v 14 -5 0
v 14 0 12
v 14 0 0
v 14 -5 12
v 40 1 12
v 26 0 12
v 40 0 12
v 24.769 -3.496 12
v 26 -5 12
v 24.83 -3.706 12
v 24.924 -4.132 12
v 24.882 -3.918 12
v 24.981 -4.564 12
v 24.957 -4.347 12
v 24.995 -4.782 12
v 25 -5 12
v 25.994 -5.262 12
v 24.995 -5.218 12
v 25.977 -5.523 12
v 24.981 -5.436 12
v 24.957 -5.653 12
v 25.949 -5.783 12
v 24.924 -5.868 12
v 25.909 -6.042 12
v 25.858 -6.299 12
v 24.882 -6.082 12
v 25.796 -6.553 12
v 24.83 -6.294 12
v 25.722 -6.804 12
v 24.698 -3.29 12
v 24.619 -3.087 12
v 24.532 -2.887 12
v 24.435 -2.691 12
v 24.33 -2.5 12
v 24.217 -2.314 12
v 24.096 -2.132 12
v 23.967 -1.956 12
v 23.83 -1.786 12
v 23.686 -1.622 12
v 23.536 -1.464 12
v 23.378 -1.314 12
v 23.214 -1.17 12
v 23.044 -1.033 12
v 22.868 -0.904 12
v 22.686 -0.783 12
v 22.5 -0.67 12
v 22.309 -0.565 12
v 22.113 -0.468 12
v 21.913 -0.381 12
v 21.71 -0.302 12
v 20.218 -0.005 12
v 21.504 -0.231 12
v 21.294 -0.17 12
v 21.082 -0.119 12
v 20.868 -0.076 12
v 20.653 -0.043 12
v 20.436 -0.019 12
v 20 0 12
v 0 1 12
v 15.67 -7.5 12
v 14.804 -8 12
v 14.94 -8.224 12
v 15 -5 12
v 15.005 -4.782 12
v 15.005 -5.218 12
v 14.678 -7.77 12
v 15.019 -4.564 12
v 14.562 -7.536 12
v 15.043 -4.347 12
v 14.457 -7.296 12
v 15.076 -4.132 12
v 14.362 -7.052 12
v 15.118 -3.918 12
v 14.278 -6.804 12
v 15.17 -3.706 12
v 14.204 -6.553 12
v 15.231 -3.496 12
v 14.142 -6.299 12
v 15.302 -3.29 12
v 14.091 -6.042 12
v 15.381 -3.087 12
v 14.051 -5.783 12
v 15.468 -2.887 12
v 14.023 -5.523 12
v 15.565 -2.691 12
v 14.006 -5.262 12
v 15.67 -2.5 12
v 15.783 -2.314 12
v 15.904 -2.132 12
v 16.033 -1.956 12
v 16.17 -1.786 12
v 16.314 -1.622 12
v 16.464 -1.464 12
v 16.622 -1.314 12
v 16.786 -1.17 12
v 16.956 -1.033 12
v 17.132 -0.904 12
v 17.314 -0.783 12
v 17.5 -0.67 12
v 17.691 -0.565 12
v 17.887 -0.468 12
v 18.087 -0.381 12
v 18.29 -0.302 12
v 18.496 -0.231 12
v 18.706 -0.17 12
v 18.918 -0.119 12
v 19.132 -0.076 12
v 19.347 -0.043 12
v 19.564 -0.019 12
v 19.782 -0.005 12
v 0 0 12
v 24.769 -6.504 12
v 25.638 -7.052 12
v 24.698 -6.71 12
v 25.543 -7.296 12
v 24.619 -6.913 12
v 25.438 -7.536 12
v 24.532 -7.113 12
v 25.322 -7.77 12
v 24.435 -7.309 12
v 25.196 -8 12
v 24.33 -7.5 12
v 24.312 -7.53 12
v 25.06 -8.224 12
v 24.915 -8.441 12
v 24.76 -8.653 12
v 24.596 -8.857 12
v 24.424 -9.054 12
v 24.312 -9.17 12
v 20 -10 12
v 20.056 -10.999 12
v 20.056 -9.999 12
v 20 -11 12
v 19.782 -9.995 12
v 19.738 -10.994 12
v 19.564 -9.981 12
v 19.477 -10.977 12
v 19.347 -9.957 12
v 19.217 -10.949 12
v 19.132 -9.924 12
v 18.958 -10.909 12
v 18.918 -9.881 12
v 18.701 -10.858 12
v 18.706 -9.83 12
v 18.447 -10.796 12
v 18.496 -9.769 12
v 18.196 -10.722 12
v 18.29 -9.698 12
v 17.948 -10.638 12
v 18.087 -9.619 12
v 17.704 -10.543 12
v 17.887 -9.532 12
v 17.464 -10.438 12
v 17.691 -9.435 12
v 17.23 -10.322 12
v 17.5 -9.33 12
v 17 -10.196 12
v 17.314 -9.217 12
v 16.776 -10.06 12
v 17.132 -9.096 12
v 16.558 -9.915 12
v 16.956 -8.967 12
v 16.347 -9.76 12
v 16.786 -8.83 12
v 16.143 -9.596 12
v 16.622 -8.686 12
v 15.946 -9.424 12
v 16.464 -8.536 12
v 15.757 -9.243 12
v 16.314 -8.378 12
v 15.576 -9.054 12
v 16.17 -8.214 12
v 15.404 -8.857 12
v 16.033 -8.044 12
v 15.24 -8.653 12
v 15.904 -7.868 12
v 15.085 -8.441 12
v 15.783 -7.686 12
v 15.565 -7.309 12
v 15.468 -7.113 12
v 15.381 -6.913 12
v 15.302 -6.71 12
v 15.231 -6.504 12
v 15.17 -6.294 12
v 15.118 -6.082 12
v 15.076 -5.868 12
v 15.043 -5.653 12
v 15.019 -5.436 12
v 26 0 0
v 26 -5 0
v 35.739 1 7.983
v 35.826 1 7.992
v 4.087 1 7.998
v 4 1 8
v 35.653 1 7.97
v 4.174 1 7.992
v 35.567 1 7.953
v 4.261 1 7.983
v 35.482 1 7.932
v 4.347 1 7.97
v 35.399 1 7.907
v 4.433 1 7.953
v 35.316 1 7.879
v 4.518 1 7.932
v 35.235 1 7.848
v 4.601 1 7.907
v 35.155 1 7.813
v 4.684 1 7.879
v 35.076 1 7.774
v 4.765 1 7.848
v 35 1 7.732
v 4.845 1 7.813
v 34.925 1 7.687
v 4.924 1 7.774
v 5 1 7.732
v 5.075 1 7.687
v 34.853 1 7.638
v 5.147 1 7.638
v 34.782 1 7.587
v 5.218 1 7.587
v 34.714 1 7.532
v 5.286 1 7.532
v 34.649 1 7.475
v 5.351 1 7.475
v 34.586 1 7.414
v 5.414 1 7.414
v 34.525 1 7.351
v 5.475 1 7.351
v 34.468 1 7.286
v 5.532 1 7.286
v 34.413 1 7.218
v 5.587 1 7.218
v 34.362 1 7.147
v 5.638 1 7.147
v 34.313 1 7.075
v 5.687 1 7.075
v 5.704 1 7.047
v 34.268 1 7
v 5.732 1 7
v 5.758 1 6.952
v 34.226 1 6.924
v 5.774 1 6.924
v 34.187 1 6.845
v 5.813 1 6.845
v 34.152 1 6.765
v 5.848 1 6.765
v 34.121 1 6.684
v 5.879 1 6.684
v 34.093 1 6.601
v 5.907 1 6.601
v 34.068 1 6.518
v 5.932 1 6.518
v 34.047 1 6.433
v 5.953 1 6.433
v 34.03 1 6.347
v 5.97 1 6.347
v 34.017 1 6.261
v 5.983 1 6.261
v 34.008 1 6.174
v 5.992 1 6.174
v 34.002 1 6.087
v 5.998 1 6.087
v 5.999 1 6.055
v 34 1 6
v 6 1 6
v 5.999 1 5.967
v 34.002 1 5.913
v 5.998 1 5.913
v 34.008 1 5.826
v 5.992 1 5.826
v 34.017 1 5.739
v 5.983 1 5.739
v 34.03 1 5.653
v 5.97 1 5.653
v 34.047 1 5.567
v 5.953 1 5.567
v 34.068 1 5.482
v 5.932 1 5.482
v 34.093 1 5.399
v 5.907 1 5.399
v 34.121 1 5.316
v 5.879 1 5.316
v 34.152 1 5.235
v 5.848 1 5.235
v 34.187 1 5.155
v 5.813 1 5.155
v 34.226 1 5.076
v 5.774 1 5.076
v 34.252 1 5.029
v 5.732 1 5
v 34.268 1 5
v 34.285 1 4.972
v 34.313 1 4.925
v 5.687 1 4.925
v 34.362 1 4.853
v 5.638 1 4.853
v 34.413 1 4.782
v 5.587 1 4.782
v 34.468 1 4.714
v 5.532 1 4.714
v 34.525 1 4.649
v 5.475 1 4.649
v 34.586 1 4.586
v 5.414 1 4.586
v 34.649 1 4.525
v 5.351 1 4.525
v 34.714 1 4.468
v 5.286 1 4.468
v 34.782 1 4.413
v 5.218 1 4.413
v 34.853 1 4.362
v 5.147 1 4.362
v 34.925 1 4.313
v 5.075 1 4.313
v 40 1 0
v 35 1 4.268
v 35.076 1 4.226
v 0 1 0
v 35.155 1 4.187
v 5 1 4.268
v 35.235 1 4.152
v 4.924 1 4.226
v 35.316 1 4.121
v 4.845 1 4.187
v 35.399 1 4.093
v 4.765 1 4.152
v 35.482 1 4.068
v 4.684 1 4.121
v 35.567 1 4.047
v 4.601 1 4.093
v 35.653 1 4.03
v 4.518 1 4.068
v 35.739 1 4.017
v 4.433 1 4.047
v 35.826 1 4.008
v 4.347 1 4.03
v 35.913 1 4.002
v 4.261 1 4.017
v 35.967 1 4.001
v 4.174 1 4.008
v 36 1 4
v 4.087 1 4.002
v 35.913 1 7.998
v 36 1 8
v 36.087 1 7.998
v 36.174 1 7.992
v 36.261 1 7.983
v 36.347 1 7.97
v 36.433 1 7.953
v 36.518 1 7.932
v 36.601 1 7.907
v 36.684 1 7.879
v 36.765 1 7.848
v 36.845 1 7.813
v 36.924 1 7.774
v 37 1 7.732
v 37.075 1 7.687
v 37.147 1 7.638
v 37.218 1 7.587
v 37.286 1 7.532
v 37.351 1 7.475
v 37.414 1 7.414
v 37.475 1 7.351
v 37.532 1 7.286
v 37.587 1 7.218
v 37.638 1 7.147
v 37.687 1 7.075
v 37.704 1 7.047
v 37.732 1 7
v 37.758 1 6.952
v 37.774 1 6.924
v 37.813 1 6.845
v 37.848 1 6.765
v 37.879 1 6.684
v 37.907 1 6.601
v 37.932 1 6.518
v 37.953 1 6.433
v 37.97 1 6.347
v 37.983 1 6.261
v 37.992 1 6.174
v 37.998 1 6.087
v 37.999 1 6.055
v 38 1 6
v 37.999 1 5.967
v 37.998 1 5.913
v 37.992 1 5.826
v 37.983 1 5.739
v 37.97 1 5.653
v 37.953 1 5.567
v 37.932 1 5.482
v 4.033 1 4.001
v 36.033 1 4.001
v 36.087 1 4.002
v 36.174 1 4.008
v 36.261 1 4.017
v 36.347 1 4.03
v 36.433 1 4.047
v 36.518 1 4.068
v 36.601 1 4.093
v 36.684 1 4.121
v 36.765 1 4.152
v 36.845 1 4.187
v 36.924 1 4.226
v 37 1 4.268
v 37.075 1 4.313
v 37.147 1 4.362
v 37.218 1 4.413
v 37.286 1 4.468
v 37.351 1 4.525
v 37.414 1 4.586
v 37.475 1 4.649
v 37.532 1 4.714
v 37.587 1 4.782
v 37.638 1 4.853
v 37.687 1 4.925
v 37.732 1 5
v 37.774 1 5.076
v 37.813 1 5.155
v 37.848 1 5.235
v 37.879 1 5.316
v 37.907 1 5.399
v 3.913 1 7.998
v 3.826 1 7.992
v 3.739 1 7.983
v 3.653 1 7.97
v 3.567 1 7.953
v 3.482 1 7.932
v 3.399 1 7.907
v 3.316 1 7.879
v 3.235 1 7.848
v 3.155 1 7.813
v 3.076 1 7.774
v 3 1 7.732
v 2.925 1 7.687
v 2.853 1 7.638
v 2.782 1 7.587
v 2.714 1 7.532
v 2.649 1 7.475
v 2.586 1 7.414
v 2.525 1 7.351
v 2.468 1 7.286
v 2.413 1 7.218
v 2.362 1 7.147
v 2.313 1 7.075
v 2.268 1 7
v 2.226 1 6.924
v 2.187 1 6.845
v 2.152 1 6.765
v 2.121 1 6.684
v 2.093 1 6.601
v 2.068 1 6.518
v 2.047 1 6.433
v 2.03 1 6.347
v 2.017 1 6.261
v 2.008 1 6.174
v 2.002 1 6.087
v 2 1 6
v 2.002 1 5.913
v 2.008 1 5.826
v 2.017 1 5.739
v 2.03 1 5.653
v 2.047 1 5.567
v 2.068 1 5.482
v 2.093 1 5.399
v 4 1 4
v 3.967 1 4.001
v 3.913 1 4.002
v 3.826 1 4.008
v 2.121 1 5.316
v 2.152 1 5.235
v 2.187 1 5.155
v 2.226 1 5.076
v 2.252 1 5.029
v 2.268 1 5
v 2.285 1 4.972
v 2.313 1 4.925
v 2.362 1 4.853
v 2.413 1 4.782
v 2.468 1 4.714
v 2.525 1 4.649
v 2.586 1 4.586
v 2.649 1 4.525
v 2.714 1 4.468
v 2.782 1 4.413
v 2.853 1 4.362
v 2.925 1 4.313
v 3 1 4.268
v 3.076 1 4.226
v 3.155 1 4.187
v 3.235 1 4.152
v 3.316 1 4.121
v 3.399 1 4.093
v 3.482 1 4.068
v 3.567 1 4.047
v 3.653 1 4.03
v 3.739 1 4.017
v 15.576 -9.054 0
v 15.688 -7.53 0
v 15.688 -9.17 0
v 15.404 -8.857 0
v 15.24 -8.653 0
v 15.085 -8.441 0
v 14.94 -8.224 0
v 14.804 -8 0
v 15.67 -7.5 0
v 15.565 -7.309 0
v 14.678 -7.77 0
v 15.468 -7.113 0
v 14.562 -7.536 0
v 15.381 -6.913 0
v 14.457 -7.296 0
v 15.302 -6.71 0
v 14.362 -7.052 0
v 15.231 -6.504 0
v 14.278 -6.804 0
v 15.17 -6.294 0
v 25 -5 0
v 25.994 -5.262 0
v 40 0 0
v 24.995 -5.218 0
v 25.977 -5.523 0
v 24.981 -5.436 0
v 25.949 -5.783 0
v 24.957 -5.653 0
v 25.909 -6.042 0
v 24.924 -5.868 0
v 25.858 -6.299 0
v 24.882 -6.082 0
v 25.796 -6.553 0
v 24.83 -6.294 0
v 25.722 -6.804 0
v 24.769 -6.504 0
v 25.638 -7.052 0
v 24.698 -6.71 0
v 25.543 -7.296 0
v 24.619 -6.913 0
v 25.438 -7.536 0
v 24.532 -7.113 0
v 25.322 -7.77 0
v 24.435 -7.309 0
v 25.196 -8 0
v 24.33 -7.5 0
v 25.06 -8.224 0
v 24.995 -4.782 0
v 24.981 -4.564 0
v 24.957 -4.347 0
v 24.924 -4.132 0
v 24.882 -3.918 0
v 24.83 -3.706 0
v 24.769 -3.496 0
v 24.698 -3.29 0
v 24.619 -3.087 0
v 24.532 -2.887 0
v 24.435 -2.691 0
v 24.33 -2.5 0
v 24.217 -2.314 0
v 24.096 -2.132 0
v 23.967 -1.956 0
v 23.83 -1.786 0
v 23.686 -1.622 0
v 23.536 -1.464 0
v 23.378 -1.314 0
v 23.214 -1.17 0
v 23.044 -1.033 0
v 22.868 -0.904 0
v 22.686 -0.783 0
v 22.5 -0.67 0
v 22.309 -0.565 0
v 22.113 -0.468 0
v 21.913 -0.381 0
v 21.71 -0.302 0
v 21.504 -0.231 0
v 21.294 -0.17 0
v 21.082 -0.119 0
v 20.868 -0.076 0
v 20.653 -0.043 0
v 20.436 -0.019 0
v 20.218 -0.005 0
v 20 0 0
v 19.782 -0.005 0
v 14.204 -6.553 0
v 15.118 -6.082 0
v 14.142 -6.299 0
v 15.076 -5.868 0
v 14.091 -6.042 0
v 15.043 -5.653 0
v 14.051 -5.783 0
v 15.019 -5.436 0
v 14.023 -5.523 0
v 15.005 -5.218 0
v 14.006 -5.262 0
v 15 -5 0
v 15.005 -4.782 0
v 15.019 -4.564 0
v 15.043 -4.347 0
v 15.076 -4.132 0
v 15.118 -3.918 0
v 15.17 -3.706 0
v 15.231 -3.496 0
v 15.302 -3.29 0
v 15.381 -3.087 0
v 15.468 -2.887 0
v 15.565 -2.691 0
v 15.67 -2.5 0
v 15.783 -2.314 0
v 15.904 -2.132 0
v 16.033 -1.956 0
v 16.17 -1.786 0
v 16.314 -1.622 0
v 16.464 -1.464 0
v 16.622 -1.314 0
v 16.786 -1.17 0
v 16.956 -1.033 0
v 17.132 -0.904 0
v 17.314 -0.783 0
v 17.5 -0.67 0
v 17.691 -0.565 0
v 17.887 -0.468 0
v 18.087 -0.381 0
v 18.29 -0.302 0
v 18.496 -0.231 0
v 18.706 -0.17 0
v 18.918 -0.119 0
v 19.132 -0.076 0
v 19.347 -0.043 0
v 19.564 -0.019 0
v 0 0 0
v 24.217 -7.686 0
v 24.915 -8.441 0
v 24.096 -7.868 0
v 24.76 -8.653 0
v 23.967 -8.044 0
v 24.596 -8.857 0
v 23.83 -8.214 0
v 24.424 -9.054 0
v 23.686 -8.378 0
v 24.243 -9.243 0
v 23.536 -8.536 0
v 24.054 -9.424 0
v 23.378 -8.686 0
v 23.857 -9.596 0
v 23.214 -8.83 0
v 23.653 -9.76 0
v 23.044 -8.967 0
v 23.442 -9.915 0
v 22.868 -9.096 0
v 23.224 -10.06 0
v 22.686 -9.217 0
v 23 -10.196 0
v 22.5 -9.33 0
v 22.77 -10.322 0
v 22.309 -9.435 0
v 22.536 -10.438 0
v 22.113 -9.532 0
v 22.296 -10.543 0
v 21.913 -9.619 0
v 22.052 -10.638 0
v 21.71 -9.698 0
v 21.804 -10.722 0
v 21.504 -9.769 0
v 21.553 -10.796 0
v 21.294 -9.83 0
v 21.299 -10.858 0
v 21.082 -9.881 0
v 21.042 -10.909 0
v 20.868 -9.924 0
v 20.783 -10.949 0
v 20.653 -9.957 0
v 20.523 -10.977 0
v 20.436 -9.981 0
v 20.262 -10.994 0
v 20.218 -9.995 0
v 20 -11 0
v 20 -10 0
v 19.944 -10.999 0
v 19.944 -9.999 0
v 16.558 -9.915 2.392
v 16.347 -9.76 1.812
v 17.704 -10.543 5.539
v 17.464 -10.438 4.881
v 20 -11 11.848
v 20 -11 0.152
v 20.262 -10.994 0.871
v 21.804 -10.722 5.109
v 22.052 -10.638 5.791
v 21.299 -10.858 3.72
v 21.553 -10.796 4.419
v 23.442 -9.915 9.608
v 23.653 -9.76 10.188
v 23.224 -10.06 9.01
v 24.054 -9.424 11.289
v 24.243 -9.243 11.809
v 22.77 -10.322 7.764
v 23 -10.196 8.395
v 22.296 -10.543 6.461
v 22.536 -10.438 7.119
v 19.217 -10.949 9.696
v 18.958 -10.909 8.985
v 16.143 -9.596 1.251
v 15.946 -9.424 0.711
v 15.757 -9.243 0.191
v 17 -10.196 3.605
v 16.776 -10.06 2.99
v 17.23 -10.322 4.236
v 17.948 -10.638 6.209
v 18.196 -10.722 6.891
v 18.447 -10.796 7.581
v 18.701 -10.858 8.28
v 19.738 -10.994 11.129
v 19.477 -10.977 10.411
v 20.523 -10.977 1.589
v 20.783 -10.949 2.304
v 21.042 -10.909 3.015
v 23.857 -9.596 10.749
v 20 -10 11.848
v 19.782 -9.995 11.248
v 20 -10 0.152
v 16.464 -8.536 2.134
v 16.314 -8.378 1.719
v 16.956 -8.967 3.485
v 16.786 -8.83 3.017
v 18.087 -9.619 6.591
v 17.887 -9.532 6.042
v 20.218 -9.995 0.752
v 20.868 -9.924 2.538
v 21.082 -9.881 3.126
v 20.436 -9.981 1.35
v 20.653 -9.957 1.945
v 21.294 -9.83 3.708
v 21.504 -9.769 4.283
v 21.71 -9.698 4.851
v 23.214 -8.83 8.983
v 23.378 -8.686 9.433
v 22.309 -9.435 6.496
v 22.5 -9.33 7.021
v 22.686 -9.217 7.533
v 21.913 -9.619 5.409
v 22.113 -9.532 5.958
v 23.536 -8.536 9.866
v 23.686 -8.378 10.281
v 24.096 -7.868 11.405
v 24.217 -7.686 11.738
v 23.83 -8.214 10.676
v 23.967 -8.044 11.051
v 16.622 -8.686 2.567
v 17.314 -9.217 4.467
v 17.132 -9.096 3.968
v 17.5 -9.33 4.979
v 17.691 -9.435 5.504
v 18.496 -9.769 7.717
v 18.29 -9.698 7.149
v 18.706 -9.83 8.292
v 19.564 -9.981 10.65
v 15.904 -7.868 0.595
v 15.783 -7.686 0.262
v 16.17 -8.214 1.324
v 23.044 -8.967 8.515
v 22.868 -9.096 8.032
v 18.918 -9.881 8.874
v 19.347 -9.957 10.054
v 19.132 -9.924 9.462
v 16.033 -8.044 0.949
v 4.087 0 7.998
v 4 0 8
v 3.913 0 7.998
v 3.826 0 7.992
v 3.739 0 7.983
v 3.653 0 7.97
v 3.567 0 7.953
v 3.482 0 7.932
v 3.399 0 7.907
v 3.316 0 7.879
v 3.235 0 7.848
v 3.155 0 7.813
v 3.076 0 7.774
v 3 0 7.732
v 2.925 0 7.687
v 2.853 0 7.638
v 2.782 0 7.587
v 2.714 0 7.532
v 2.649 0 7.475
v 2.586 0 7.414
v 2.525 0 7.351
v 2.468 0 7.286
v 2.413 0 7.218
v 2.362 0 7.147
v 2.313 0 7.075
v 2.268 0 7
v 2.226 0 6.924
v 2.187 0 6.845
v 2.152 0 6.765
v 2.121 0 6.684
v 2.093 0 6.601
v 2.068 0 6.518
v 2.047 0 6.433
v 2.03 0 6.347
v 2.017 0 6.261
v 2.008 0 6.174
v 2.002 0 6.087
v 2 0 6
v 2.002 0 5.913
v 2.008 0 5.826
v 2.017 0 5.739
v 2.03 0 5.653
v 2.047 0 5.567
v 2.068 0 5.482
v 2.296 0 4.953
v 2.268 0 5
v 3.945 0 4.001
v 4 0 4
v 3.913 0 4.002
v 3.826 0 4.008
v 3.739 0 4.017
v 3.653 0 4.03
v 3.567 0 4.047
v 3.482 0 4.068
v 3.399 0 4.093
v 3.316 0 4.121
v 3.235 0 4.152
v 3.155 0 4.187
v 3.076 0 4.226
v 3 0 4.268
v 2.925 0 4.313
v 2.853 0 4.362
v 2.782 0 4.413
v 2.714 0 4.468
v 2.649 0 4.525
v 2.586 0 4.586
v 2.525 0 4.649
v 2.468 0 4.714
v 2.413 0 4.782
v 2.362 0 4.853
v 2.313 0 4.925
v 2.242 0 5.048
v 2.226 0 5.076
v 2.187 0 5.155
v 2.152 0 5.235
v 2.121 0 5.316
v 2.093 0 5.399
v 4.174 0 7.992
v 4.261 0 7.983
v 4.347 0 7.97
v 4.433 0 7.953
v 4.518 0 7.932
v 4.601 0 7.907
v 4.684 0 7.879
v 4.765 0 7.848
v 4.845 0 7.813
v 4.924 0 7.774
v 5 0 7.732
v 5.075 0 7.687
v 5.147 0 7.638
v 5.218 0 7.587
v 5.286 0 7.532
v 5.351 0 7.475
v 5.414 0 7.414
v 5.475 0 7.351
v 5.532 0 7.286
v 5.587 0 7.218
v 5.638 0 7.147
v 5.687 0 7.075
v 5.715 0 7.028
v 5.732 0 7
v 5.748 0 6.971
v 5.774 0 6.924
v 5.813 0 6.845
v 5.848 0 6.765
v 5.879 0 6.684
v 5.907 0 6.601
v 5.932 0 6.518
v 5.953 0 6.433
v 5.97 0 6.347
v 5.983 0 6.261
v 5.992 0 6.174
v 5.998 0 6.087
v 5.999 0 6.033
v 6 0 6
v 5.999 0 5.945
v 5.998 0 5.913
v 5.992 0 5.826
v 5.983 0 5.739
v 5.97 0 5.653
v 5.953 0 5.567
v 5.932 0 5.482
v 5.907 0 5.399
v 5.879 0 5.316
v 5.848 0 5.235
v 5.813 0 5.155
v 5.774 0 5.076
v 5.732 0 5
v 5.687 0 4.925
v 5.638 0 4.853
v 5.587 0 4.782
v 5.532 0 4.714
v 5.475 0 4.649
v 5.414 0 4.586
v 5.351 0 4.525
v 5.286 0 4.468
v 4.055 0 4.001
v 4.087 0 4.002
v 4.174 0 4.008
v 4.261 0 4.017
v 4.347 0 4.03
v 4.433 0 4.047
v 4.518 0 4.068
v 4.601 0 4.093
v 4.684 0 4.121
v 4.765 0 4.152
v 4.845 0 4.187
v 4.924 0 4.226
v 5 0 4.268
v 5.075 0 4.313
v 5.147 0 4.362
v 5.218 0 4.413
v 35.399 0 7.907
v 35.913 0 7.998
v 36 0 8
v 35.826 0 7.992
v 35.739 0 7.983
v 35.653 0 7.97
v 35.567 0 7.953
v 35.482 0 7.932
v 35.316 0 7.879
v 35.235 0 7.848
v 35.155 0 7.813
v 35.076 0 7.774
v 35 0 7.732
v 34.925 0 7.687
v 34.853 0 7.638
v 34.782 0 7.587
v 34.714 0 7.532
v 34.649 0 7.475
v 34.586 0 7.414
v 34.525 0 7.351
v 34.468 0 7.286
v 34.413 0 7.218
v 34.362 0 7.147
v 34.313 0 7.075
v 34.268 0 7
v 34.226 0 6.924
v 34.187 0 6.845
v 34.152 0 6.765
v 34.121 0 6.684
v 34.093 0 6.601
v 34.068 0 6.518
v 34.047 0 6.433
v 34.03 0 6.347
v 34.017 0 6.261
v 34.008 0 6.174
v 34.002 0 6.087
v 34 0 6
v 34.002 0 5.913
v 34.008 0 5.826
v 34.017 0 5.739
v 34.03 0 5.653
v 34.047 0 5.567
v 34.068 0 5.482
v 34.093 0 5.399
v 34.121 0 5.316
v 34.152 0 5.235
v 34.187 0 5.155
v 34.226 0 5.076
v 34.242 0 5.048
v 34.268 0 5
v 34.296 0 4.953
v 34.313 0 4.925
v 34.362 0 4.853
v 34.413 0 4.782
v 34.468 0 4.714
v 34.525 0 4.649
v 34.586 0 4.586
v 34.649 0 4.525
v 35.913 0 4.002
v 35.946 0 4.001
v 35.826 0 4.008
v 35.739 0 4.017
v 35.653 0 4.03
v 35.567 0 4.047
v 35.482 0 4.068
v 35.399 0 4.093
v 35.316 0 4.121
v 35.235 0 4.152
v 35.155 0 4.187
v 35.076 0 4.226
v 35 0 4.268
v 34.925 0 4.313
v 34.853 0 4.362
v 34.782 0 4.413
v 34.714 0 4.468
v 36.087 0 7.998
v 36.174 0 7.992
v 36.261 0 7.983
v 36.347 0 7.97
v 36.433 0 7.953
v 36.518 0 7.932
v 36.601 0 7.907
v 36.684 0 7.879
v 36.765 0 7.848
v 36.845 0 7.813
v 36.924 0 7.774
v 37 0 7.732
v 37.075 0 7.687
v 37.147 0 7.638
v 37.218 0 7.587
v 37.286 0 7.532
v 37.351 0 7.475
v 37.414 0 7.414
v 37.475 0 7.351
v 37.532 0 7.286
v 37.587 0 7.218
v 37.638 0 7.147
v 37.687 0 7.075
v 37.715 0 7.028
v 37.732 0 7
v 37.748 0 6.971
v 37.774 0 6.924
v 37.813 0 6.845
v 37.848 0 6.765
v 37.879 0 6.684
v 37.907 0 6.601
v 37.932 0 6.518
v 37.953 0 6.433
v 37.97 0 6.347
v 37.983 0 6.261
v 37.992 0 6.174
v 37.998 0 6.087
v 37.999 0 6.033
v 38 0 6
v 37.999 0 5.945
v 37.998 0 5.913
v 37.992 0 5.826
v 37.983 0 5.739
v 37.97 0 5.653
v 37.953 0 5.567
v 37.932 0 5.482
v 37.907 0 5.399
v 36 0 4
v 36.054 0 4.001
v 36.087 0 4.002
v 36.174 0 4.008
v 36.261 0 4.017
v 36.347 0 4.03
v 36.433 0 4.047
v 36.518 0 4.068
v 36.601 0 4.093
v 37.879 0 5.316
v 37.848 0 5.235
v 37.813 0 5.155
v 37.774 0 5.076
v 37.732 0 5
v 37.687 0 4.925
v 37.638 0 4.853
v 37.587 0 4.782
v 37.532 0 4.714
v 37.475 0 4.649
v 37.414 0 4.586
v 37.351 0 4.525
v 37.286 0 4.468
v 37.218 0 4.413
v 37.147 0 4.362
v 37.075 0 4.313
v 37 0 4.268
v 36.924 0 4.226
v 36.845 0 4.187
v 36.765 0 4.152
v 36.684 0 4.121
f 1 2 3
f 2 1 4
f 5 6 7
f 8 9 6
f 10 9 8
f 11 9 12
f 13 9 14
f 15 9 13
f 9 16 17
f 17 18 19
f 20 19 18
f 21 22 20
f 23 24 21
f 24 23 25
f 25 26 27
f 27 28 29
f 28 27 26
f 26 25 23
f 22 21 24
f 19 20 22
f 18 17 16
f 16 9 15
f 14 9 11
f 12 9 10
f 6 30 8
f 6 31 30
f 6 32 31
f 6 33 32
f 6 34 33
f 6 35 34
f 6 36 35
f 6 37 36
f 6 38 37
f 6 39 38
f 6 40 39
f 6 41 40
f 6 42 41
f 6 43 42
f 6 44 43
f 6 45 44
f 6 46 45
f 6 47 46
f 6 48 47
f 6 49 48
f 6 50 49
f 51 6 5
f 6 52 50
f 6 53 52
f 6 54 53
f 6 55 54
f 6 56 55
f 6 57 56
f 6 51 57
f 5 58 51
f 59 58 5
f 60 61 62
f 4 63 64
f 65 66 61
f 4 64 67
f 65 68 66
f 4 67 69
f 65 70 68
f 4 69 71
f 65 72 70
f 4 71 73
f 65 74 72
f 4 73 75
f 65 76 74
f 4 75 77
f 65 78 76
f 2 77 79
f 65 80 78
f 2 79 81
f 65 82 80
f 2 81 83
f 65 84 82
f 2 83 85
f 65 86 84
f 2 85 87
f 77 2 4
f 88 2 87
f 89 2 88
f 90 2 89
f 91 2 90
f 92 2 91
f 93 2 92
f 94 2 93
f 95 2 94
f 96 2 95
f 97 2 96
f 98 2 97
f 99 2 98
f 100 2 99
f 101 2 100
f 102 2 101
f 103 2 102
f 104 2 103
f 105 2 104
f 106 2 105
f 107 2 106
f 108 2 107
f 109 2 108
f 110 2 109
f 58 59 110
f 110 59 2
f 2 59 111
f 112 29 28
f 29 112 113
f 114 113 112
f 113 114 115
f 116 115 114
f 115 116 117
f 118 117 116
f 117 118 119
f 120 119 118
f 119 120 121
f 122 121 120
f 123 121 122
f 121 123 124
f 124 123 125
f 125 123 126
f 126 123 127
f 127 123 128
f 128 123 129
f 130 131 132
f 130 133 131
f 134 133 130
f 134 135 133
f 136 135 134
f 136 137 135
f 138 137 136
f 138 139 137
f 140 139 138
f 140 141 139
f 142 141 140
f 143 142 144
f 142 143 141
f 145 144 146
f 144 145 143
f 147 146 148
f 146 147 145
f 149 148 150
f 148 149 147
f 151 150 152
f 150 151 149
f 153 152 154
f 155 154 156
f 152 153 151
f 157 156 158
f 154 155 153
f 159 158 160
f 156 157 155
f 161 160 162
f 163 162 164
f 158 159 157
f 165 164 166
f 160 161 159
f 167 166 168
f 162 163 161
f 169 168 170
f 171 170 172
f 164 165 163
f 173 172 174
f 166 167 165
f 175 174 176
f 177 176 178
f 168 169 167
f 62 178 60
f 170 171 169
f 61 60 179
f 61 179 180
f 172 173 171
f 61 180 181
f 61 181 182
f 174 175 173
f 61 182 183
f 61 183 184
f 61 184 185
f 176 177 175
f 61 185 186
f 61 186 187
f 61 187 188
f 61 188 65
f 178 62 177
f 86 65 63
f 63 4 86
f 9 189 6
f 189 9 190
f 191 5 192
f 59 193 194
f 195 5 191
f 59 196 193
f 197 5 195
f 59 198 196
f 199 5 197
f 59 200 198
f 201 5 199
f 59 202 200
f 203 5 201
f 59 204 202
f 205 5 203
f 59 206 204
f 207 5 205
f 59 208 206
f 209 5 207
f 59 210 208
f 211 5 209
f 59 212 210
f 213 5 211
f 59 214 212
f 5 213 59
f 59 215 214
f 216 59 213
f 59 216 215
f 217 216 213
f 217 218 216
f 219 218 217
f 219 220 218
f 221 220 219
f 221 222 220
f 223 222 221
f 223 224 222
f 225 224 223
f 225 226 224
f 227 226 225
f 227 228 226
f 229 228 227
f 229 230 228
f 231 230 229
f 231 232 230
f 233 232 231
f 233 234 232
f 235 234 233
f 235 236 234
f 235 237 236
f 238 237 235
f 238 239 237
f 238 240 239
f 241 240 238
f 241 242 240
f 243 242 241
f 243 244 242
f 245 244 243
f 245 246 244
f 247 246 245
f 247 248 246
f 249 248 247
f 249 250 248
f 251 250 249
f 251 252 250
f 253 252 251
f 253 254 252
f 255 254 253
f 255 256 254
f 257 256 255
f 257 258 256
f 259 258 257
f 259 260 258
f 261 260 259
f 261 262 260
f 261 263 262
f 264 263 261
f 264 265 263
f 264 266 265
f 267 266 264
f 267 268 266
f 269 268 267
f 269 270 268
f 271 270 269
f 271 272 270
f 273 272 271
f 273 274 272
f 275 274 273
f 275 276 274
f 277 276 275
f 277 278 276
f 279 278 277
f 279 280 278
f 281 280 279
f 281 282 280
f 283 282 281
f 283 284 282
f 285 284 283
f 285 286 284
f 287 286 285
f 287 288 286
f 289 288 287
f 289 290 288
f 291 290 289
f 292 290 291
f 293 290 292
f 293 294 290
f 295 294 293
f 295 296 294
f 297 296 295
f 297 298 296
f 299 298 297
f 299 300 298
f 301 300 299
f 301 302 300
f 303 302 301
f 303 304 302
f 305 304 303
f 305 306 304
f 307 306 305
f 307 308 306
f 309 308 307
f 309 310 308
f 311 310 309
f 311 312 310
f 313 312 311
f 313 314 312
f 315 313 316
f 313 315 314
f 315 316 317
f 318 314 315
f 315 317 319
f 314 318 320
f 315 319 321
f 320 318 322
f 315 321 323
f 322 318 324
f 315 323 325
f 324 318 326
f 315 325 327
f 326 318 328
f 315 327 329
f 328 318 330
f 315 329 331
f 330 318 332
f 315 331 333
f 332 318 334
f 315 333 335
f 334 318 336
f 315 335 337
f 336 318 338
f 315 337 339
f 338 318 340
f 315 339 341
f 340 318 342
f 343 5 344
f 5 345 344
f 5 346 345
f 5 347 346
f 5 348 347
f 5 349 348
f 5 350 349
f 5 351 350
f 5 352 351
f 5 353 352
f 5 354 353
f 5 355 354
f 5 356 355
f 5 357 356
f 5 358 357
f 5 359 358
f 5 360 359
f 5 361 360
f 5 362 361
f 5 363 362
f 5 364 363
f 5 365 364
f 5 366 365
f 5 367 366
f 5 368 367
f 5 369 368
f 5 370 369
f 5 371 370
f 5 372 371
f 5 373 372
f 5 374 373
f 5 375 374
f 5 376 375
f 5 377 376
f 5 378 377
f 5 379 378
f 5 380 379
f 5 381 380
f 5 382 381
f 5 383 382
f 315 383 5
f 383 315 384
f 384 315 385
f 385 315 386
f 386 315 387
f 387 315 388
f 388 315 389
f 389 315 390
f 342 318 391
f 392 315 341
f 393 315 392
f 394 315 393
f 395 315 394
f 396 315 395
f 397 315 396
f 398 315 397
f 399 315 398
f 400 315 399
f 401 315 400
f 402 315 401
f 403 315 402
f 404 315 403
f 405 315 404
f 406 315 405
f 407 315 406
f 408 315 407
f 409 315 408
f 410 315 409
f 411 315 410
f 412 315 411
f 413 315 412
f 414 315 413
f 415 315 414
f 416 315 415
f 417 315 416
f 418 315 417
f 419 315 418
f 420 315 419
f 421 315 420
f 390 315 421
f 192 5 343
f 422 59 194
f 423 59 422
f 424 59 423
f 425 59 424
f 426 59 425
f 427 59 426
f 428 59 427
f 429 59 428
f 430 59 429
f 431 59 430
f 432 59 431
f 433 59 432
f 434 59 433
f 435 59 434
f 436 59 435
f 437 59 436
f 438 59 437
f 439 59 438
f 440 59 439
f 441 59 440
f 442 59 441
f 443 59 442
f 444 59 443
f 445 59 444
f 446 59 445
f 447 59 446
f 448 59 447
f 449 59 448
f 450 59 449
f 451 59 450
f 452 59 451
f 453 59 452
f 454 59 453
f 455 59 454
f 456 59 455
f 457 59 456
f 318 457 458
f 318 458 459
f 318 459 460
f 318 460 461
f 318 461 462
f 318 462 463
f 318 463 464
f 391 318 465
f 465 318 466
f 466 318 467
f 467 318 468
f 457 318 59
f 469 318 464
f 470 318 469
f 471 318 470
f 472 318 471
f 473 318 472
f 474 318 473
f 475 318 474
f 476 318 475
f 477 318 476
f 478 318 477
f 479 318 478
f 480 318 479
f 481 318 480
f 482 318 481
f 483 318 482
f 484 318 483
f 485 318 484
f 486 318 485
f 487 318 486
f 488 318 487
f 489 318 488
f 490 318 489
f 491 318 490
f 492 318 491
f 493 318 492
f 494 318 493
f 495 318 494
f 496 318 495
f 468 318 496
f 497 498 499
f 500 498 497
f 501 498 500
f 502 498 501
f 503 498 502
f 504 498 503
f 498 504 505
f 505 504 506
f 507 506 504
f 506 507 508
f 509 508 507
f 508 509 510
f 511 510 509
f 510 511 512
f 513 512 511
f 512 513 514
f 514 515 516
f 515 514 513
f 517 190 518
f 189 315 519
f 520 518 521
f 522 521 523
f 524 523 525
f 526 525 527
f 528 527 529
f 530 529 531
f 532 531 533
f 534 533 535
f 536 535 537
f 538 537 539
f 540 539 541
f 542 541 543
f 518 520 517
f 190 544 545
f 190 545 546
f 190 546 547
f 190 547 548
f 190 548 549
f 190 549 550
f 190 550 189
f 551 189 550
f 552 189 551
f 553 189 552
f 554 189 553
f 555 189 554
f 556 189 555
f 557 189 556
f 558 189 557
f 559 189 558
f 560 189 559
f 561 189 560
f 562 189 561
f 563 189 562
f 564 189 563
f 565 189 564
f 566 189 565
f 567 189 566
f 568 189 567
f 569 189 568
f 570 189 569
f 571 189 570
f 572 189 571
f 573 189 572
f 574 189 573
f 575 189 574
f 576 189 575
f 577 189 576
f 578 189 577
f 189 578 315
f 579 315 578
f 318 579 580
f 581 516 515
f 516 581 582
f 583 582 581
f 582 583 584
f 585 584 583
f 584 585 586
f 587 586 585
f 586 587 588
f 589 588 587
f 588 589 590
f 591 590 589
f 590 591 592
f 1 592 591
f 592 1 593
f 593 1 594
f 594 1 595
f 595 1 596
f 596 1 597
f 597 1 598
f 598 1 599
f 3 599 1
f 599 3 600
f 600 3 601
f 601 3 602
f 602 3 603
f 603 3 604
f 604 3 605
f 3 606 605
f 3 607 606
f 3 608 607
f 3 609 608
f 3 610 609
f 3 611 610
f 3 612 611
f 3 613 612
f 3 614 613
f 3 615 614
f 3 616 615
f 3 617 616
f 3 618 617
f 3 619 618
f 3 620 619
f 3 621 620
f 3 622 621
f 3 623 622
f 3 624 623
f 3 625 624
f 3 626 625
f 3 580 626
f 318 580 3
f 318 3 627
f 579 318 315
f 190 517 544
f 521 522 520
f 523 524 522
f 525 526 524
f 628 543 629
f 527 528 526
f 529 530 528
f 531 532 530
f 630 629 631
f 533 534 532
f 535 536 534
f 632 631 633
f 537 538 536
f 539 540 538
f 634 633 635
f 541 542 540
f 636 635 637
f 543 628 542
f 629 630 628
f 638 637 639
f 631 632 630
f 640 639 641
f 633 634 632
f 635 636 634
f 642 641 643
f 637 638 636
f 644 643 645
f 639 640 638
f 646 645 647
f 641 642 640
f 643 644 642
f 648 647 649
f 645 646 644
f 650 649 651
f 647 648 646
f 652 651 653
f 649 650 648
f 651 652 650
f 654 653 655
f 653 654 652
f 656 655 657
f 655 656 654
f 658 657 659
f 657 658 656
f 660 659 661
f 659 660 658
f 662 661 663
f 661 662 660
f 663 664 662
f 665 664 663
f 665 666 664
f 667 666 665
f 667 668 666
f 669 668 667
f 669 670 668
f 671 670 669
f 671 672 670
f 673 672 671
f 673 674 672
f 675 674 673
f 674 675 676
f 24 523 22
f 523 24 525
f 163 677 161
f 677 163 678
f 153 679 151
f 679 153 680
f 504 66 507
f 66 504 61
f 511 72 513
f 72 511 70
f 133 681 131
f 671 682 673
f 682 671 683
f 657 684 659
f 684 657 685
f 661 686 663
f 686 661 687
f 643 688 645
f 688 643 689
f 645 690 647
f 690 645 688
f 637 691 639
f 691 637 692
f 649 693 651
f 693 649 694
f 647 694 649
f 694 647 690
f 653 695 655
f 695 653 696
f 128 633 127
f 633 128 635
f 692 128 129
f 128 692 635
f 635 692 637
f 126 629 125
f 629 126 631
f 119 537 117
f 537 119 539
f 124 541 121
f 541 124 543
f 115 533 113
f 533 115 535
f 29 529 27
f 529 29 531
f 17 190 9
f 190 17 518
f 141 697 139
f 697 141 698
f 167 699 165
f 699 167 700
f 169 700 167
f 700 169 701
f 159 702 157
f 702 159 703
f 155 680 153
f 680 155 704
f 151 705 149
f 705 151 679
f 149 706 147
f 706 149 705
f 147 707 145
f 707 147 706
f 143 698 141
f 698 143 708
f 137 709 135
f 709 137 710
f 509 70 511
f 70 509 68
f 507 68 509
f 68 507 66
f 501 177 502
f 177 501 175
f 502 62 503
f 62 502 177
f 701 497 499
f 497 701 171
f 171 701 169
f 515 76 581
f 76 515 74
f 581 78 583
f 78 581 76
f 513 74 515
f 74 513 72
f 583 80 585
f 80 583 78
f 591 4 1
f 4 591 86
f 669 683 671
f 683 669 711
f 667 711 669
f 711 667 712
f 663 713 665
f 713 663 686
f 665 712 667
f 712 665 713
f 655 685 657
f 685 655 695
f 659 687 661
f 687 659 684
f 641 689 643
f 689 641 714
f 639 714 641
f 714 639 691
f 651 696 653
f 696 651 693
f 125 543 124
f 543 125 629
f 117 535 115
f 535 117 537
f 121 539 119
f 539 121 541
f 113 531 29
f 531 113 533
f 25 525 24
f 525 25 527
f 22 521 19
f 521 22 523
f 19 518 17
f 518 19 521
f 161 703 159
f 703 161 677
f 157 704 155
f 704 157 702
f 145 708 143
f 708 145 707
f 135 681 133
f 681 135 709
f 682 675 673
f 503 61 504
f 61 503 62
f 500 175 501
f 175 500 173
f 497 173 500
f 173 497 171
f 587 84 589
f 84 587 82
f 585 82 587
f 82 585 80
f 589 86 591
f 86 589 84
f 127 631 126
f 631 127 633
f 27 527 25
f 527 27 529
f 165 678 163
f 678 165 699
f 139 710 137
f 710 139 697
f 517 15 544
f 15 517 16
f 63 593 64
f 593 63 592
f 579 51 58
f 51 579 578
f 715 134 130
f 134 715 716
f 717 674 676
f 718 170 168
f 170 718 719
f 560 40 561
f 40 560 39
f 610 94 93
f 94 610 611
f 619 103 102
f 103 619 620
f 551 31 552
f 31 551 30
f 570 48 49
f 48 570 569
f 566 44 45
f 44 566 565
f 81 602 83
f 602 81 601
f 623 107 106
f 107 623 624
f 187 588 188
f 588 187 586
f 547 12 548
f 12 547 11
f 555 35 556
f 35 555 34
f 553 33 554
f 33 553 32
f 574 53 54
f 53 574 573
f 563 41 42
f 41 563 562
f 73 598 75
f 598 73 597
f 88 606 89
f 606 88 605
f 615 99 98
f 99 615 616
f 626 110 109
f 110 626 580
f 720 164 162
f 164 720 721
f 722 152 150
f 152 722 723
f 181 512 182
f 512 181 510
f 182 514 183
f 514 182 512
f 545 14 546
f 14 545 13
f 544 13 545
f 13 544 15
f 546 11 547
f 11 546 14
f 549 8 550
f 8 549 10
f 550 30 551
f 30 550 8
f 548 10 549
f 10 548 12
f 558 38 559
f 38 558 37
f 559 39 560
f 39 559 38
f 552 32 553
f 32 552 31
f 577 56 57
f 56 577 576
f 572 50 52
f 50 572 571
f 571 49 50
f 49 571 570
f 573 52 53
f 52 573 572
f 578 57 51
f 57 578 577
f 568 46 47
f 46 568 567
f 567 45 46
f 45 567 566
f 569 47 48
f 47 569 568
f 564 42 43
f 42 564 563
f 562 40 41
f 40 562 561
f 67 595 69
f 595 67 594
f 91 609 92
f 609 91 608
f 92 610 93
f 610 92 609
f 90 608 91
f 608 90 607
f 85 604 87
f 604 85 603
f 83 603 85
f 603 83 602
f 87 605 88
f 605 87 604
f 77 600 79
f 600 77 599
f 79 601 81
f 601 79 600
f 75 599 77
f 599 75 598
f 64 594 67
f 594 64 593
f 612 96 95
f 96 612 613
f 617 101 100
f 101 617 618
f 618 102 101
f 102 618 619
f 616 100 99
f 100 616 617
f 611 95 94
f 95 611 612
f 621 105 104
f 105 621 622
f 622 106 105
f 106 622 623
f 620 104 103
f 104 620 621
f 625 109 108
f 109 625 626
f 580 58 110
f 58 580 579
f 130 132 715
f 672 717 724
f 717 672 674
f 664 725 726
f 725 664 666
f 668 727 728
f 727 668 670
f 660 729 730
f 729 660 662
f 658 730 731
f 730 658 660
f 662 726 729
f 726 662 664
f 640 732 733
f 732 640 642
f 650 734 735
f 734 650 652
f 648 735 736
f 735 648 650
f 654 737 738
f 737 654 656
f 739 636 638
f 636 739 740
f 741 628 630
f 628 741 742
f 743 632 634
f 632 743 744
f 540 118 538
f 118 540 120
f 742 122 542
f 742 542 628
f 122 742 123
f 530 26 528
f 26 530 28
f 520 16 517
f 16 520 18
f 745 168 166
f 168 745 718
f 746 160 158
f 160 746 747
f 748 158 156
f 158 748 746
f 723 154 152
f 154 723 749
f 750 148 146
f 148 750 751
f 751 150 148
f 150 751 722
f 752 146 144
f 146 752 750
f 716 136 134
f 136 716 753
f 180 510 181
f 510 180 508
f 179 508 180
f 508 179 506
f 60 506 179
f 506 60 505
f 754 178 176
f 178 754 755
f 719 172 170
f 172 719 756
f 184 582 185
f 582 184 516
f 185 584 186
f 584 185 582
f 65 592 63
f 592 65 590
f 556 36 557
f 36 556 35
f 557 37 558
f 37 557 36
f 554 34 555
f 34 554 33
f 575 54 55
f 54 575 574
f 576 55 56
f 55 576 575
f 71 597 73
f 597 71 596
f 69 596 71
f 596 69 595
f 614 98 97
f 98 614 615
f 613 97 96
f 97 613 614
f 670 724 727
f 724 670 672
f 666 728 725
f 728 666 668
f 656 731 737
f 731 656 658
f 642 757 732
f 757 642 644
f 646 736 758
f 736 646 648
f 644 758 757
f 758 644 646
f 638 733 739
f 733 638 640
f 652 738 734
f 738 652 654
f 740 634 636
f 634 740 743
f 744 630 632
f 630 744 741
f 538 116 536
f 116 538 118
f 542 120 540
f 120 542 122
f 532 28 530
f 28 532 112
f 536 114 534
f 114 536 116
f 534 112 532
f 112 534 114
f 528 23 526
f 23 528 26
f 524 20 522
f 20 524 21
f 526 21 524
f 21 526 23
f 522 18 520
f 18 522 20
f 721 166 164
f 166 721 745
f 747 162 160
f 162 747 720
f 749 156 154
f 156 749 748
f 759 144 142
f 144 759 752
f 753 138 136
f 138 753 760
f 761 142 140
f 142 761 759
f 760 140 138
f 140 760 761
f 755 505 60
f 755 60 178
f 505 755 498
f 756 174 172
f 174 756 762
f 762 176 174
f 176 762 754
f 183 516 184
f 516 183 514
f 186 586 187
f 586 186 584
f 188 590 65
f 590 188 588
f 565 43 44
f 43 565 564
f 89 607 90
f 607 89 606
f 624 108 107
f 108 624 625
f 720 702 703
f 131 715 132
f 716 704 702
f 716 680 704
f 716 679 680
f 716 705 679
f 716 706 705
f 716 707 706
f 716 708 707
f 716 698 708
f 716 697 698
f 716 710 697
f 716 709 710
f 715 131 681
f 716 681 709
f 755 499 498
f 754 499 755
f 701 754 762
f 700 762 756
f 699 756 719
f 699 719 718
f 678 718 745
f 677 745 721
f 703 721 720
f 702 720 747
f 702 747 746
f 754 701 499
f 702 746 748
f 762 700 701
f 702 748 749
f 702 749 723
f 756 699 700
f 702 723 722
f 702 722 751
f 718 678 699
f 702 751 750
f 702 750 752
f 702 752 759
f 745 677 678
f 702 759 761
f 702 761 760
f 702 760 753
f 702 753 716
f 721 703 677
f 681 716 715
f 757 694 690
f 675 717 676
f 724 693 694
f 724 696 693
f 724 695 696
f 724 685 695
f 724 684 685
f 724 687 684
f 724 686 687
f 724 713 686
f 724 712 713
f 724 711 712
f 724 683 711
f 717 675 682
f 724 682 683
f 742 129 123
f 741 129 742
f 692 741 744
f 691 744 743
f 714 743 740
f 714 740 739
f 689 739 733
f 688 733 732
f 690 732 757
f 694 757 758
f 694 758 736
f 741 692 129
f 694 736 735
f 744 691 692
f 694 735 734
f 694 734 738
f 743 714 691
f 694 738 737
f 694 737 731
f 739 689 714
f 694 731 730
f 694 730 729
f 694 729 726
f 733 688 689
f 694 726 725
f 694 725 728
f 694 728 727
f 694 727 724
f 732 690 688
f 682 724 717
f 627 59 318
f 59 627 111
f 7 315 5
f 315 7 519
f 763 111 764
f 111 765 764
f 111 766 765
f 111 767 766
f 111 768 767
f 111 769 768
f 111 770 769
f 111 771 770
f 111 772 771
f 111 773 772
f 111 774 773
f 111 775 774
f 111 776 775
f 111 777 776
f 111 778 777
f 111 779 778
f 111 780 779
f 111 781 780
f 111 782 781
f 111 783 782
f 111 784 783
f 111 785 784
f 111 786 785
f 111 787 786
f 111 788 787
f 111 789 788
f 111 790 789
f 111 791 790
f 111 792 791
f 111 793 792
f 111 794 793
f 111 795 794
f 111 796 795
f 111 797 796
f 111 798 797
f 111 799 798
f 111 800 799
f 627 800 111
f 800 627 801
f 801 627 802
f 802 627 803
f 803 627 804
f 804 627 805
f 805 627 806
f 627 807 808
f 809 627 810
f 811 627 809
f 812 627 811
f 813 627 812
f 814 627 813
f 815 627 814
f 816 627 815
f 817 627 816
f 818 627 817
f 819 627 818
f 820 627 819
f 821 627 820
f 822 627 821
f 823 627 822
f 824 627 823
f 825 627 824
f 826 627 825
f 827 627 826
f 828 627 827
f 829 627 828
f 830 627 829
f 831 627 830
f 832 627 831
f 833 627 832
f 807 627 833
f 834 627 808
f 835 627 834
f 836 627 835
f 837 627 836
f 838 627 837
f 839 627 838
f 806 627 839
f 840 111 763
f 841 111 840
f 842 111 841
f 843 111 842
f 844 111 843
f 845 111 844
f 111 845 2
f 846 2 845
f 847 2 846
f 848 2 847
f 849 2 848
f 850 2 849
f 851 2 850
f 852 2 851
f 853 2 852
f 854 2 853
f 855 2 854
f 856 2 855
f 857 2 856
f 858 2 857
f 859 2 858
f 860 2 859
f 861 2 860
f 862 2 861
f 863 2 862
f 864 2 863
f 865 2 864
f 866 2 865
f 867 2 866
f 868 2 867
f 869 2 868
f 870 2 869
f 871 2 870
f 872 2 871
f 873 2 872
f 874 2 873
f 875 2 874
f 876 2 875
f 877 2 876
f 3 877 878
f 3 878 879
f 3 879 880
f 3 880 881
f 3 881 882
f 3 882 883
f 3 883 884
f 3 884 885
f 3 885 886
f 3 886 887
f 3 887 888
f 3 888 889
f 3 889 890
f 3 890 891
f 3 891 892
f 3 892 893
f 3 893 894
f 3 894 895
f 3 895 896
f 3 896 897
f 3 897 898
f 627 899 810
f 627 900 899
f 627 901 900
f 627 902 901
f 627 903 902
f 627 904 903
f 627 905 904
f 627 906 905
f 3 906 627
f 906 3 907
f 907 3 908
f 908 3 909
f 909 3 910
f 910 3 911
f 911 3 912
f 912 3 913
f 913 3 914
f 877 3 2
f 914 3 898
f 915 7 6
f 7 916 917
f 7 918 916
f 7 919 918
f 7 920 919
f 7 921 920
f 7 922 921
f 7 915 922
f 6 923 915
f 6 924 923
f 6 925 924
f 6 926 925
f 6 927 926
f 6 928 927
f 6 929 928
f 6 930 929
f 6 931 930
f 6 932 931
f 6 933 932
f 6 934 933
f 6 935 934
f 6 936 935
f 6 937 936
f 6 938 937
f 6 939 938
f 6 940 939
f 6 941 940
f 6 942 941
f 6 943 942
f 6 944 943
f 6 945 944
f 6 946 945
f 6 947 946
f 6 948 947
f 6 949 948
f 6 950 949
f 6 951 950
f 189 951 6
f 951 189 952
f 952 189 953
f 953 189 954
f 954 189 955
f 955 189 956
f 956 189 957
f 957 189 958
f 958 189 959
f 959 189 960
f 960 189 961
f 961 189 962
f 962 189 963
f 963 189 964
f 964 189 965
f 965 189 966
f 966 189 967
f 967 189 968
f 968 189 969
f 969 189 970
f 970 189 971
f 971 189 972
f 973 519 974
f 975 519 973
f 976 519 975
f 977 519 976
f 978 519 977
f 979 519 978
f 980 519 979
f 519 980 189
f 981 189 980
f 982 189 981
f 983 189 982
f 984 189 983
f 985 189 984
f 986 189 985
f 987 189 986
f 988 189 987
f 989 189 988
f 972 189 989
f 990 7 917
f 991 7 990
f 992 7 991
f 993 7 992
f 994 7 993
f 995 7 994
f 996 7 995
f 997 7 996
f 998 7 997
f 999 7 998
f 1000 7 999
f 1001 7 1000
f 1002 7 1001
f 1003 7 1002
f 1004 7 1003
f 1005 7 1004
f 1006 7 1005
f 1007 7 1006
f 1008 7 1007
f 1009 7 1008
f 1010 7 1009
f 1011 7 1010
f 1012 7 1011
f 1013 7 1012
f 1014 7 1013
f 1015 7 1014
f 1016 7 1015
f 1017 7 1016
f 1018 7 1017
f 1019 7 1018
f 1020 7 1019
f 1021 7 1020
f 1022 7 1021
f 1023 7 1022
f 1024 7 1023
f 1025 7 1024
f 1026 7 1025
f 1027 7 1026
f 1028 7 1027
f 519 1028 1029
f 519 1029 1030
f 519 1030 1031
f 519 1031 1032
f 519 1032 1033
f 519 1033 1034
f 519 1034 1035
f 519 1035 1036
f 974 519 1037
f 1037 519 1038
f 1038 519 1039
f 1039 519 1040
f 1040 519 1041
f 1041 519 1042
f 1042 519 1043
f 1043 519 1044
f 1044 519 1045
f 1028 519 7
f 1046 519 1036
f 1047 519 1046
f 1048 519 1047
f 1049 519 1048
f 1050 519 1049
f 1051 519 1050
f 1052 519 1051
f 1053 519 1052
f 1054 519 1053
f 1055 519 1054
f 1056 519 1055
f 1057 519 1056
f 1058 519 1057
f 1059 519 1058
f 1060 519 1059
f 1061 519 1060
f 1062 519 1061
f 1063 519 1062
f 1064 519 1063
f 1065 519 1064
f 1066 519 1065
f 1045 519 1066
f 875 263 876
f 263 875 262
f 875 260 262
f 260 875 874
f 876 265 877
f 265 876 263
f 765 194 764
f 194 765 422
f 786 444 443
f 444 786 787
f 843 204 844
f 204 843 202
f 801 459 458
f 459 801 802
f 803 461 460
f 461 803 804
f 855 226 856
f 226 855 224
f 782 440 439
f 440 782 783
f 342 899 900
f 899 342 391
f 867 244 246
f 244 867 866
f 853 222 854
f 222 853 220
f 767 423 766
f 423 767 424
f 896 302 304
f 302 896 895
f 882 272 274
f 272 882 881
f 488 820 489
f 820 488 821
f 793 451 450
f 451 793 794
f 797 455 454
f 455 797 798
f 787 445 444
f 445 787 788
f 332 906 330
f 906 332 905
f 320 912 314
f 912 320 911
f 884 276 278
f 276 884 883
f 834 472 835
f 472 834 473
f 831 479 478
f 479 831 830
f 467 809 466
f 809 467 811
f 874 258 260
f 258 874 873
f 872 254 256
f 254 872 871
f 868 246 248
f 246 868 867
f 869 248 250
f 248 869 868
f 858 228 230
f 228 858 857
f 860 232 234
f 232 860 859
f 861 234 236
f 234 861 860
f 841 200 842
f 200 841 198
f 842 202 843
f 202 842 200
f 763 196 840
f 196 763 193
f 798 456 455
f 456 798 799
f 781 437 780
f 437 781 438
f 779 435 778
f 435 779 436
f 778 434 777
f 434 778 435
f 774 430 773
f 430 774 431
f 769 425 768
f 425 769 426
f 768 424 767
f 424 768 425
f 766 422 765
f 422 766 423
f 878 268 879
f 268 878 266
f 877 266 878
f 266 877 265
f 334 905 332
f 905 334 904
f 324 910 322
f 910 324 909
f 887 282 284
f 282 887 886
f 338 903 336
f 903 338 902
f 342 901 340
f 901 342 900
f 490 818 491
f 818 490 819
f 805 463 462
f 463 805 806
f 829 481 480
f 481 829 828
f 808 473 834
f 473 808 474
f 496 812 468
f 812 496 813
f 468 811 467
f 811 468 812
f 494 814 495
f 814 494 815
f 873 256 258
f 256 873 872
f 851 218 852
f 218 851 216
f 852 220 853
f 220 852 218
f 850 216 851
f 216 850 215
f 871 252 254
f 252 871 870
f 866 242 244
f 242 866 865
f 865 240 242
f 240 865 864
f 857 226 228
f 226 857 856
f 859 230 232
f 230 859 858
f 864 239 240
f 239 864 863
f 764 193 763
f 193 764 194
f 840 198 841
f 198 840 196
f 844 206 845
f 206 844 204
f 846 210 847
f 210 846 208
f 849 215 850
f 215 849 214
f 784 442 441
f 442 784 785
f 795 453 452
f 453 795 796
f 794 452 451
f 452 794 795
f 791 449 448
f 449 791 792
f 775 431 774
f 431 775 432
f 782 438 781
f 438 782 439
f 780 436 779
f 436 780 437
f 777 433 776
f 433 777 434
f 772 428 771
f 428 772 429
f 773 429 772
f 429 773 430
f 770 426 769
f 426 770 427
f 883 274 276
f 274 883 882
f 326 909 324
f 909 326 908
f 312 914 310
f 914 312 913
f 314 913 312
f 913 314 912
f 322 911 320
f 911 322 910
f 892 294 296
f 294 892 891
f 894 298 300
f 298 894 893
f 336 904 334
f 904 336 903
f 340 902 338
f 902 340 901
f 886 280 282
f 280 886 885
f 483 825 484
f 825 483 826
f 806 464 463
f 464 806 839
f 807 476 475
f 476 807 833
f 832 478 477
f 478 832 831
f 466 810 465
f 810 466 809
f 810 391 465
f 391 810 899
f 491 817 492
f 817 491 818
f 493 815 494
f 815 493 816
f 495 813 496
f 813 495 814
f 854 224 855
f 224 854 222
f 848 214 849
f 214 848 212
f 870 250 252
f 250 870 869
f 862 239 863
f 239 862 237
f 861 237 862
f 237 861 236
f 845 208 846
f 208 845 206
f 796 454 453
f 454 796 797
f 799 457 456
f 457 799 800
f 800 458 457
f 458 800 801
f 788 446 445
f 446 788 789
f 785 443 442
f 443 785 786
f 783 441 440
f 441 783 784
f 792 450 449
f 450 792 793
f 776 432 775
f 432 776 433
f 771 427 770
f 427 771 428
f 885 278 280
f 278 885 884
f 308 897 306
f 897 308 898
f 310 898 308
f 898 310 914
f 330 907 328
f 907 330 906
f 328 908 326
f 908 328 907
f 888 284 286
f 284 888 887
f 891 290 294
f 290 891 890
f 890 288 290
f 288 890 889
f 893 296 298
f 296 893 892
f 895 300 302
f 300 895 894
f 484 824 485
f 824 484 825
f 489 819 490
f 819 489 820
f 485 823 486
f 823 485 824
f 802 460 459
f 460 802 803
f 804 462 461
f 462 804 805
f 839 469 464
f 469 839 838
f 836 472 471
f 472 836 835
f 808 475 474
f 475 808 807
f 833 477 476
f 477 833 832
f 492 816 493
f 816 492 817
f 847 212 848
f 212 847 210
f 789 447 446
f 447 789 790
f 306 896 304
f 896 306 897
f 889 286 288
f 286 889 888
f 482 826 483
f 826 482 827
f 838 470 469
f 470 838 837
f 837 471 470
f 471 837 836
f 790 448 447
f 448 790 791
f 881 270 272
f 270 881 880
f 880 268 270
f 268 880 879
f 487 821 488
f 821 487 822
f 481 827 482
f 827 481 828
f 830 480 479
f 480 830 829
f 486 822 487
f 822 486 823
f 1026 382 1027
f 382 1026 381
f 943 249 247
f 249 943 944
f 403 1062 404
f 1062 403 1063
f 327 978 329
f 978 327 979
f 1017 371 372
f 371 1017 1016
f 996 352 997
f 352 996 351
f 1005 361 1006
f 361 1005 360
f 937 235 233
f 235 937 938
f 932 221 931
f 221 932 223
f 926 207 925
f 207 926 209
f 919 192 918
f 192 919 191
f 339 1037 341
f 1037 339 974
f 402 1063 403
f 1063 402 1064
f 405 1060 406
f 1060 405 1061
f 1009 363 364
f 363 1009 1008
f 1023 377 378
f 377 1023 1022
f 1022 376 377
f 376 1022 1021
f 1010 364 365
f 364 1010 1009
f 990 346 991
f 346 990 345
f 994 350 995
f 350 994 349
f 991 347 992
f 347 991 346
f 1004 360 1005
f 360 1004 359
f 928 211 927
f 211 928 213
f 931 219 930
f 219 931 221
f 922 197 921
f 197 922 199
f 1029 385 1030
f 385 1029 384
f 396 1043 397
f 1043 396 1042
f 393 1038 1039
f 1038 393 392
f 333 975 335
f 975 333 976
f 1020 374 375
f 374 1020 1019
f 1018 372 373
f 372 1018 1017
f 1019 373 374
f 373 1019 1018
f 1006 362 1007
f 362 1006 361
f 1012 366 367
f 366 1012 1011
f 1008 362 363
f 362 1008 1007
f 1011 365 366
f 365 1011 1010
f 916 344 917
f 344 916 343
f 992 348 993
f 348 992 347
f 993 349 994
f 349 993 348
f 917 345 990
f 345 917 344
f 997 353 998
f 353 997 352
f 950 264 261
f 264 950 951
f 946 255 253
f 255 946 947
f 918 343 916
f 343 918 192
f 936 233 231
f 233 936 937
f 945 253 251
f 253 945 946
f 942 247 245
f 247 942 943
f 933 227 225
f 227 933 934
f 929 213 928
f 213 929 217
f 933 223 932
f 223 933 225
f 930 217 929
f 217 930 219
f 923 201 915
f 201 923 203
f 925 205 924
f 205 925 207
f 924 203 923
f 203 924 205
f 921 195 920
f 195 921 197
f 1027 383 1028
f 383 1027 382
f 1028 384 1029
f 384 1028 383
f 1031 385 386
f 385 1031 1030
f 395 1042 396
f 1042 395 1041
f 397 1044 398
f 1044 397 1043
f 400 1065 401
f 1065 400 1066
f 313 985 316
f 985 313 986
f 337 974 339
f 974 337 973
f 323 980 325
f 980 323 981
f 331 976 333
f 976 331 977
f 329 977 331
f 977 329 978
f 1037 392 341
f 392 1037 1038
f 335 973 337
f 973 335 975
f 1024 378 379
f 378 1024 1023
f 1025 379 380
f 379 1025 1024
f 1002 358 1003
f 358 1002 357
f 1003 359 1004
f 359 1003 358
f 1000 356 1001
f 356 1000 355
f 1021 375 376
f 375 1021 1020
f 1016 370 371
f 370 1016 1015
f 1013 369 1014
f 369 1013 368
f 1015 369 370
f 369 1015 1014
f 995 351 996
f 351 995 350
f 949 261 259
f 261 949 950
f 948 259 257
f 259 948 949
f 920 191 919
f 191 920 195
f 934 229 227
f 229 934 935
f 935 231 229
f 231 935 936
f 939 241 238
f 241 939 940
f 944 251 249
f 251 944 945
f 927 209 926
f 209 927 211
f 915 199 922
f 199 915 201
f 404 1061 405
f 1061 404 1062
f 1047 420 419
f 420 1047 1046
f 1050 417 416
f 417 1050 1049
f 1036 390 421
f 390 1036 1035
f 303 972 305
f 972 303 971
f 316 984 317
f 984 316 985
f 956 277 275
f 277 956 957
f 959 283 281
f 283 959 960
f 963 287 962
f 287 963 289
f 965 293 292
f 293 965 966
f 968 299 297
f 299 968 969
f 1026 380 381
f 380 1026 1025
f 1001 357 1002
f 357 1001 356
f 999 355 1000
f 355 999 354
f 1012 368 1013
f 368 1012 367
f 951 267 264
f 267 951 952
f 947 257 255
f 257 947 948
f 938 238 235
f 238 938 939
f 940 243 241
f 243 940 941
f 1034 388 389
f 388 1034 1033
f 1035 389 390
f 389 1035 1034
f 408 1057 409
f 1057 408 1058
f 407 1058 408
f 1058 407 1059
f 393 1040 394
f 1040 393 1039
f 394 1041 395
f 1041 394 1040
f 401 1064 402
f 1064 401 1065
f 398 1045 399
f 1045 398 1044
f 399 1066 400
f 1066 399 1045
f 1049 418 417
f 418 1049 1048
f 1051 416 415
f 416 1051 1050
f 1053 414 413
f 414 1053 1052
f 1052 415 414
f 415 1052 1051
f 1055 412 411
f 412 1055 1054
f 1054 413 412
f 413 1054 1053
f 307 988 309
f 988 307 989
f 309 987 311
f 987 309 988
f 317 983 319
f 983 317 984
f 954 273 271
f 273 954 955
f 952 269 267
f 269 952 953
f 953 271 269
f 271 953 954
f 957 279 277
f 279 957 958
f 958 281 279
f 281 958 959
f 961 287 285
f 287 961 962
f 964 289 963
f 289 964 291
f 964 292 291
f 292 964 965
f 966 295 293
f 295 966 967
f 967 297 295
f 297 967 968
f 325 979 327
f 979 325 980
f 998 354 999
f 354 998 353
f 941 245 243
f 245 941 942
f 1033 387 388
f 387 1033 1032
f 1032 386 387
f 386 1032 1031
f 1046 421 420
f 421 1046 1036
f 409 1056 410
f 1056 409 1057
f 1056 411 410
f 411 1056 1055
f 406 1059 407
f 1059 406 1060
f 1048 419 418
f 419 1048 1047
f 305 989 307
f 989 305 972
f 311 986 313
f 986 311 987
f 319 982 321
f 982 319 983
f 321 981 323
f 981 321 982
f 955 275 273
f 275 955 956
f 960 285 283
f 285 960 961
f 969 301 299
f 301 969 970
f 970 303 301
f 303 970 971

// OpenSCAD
width=12;
holeOffset = 8;
holeRadius = 2;

holeFacets = 144;

height=40;
flagRadius = 5;

difference() {
    union() {
        cube([40,1,width]);
        translate([20,-(flagRadius),0])
            Holder();
    }

    translate([4,0,6])
    rotate([90,0,0])
    translate([0,0,-2.5])
    cylinder(r=holeRadius, h=4, $fn = holeFacets);

    translate([36,0,6])
    rotate([90,0,0])
    translate([0,0,-2.5])
    cylinder(r=holeRadius, h=4, $fn = holeFacets);
}

module Holder() {
    difference() {
        union() {
        translate([-(flagRadius+1),0,0])
            cube([2*(flagRadius+1),(flagRadius+1),width]);
            cylinder(r=flagRadius+1,h=width,$fn=holeFacets);
        }
        
        translate([0,0,-2])
        cylinder(r=flagRadius, h=width+4, $fn=holeFacets);
        
        translate([0,-flagRadius,width/2])
        rotate([0,20,0])
        cube([4,flagRadius,width+4],center=true);
    }
}

module Holes() {
    translate([holeOffset,0,0])
        cylinder(r=holeRadius,h=2*sliderDepth, center=true, $fn=holeFacets);
    translate([-holeOffset,0,0])
        cylinder(r=holeRadius,h=2*sliderDepth, center=true, $fn=holeFacets);
    translate([0,holeOffset,0])
        cylinder(r=holeRadius,h=2*sliderDepth, center=true, $fn=holeFacets);
    translate([0,-holeOffset,0])
        cylinder(r=holeRadius,h=2*sliderDepth, center=true, $fn=holeFacets);
}
